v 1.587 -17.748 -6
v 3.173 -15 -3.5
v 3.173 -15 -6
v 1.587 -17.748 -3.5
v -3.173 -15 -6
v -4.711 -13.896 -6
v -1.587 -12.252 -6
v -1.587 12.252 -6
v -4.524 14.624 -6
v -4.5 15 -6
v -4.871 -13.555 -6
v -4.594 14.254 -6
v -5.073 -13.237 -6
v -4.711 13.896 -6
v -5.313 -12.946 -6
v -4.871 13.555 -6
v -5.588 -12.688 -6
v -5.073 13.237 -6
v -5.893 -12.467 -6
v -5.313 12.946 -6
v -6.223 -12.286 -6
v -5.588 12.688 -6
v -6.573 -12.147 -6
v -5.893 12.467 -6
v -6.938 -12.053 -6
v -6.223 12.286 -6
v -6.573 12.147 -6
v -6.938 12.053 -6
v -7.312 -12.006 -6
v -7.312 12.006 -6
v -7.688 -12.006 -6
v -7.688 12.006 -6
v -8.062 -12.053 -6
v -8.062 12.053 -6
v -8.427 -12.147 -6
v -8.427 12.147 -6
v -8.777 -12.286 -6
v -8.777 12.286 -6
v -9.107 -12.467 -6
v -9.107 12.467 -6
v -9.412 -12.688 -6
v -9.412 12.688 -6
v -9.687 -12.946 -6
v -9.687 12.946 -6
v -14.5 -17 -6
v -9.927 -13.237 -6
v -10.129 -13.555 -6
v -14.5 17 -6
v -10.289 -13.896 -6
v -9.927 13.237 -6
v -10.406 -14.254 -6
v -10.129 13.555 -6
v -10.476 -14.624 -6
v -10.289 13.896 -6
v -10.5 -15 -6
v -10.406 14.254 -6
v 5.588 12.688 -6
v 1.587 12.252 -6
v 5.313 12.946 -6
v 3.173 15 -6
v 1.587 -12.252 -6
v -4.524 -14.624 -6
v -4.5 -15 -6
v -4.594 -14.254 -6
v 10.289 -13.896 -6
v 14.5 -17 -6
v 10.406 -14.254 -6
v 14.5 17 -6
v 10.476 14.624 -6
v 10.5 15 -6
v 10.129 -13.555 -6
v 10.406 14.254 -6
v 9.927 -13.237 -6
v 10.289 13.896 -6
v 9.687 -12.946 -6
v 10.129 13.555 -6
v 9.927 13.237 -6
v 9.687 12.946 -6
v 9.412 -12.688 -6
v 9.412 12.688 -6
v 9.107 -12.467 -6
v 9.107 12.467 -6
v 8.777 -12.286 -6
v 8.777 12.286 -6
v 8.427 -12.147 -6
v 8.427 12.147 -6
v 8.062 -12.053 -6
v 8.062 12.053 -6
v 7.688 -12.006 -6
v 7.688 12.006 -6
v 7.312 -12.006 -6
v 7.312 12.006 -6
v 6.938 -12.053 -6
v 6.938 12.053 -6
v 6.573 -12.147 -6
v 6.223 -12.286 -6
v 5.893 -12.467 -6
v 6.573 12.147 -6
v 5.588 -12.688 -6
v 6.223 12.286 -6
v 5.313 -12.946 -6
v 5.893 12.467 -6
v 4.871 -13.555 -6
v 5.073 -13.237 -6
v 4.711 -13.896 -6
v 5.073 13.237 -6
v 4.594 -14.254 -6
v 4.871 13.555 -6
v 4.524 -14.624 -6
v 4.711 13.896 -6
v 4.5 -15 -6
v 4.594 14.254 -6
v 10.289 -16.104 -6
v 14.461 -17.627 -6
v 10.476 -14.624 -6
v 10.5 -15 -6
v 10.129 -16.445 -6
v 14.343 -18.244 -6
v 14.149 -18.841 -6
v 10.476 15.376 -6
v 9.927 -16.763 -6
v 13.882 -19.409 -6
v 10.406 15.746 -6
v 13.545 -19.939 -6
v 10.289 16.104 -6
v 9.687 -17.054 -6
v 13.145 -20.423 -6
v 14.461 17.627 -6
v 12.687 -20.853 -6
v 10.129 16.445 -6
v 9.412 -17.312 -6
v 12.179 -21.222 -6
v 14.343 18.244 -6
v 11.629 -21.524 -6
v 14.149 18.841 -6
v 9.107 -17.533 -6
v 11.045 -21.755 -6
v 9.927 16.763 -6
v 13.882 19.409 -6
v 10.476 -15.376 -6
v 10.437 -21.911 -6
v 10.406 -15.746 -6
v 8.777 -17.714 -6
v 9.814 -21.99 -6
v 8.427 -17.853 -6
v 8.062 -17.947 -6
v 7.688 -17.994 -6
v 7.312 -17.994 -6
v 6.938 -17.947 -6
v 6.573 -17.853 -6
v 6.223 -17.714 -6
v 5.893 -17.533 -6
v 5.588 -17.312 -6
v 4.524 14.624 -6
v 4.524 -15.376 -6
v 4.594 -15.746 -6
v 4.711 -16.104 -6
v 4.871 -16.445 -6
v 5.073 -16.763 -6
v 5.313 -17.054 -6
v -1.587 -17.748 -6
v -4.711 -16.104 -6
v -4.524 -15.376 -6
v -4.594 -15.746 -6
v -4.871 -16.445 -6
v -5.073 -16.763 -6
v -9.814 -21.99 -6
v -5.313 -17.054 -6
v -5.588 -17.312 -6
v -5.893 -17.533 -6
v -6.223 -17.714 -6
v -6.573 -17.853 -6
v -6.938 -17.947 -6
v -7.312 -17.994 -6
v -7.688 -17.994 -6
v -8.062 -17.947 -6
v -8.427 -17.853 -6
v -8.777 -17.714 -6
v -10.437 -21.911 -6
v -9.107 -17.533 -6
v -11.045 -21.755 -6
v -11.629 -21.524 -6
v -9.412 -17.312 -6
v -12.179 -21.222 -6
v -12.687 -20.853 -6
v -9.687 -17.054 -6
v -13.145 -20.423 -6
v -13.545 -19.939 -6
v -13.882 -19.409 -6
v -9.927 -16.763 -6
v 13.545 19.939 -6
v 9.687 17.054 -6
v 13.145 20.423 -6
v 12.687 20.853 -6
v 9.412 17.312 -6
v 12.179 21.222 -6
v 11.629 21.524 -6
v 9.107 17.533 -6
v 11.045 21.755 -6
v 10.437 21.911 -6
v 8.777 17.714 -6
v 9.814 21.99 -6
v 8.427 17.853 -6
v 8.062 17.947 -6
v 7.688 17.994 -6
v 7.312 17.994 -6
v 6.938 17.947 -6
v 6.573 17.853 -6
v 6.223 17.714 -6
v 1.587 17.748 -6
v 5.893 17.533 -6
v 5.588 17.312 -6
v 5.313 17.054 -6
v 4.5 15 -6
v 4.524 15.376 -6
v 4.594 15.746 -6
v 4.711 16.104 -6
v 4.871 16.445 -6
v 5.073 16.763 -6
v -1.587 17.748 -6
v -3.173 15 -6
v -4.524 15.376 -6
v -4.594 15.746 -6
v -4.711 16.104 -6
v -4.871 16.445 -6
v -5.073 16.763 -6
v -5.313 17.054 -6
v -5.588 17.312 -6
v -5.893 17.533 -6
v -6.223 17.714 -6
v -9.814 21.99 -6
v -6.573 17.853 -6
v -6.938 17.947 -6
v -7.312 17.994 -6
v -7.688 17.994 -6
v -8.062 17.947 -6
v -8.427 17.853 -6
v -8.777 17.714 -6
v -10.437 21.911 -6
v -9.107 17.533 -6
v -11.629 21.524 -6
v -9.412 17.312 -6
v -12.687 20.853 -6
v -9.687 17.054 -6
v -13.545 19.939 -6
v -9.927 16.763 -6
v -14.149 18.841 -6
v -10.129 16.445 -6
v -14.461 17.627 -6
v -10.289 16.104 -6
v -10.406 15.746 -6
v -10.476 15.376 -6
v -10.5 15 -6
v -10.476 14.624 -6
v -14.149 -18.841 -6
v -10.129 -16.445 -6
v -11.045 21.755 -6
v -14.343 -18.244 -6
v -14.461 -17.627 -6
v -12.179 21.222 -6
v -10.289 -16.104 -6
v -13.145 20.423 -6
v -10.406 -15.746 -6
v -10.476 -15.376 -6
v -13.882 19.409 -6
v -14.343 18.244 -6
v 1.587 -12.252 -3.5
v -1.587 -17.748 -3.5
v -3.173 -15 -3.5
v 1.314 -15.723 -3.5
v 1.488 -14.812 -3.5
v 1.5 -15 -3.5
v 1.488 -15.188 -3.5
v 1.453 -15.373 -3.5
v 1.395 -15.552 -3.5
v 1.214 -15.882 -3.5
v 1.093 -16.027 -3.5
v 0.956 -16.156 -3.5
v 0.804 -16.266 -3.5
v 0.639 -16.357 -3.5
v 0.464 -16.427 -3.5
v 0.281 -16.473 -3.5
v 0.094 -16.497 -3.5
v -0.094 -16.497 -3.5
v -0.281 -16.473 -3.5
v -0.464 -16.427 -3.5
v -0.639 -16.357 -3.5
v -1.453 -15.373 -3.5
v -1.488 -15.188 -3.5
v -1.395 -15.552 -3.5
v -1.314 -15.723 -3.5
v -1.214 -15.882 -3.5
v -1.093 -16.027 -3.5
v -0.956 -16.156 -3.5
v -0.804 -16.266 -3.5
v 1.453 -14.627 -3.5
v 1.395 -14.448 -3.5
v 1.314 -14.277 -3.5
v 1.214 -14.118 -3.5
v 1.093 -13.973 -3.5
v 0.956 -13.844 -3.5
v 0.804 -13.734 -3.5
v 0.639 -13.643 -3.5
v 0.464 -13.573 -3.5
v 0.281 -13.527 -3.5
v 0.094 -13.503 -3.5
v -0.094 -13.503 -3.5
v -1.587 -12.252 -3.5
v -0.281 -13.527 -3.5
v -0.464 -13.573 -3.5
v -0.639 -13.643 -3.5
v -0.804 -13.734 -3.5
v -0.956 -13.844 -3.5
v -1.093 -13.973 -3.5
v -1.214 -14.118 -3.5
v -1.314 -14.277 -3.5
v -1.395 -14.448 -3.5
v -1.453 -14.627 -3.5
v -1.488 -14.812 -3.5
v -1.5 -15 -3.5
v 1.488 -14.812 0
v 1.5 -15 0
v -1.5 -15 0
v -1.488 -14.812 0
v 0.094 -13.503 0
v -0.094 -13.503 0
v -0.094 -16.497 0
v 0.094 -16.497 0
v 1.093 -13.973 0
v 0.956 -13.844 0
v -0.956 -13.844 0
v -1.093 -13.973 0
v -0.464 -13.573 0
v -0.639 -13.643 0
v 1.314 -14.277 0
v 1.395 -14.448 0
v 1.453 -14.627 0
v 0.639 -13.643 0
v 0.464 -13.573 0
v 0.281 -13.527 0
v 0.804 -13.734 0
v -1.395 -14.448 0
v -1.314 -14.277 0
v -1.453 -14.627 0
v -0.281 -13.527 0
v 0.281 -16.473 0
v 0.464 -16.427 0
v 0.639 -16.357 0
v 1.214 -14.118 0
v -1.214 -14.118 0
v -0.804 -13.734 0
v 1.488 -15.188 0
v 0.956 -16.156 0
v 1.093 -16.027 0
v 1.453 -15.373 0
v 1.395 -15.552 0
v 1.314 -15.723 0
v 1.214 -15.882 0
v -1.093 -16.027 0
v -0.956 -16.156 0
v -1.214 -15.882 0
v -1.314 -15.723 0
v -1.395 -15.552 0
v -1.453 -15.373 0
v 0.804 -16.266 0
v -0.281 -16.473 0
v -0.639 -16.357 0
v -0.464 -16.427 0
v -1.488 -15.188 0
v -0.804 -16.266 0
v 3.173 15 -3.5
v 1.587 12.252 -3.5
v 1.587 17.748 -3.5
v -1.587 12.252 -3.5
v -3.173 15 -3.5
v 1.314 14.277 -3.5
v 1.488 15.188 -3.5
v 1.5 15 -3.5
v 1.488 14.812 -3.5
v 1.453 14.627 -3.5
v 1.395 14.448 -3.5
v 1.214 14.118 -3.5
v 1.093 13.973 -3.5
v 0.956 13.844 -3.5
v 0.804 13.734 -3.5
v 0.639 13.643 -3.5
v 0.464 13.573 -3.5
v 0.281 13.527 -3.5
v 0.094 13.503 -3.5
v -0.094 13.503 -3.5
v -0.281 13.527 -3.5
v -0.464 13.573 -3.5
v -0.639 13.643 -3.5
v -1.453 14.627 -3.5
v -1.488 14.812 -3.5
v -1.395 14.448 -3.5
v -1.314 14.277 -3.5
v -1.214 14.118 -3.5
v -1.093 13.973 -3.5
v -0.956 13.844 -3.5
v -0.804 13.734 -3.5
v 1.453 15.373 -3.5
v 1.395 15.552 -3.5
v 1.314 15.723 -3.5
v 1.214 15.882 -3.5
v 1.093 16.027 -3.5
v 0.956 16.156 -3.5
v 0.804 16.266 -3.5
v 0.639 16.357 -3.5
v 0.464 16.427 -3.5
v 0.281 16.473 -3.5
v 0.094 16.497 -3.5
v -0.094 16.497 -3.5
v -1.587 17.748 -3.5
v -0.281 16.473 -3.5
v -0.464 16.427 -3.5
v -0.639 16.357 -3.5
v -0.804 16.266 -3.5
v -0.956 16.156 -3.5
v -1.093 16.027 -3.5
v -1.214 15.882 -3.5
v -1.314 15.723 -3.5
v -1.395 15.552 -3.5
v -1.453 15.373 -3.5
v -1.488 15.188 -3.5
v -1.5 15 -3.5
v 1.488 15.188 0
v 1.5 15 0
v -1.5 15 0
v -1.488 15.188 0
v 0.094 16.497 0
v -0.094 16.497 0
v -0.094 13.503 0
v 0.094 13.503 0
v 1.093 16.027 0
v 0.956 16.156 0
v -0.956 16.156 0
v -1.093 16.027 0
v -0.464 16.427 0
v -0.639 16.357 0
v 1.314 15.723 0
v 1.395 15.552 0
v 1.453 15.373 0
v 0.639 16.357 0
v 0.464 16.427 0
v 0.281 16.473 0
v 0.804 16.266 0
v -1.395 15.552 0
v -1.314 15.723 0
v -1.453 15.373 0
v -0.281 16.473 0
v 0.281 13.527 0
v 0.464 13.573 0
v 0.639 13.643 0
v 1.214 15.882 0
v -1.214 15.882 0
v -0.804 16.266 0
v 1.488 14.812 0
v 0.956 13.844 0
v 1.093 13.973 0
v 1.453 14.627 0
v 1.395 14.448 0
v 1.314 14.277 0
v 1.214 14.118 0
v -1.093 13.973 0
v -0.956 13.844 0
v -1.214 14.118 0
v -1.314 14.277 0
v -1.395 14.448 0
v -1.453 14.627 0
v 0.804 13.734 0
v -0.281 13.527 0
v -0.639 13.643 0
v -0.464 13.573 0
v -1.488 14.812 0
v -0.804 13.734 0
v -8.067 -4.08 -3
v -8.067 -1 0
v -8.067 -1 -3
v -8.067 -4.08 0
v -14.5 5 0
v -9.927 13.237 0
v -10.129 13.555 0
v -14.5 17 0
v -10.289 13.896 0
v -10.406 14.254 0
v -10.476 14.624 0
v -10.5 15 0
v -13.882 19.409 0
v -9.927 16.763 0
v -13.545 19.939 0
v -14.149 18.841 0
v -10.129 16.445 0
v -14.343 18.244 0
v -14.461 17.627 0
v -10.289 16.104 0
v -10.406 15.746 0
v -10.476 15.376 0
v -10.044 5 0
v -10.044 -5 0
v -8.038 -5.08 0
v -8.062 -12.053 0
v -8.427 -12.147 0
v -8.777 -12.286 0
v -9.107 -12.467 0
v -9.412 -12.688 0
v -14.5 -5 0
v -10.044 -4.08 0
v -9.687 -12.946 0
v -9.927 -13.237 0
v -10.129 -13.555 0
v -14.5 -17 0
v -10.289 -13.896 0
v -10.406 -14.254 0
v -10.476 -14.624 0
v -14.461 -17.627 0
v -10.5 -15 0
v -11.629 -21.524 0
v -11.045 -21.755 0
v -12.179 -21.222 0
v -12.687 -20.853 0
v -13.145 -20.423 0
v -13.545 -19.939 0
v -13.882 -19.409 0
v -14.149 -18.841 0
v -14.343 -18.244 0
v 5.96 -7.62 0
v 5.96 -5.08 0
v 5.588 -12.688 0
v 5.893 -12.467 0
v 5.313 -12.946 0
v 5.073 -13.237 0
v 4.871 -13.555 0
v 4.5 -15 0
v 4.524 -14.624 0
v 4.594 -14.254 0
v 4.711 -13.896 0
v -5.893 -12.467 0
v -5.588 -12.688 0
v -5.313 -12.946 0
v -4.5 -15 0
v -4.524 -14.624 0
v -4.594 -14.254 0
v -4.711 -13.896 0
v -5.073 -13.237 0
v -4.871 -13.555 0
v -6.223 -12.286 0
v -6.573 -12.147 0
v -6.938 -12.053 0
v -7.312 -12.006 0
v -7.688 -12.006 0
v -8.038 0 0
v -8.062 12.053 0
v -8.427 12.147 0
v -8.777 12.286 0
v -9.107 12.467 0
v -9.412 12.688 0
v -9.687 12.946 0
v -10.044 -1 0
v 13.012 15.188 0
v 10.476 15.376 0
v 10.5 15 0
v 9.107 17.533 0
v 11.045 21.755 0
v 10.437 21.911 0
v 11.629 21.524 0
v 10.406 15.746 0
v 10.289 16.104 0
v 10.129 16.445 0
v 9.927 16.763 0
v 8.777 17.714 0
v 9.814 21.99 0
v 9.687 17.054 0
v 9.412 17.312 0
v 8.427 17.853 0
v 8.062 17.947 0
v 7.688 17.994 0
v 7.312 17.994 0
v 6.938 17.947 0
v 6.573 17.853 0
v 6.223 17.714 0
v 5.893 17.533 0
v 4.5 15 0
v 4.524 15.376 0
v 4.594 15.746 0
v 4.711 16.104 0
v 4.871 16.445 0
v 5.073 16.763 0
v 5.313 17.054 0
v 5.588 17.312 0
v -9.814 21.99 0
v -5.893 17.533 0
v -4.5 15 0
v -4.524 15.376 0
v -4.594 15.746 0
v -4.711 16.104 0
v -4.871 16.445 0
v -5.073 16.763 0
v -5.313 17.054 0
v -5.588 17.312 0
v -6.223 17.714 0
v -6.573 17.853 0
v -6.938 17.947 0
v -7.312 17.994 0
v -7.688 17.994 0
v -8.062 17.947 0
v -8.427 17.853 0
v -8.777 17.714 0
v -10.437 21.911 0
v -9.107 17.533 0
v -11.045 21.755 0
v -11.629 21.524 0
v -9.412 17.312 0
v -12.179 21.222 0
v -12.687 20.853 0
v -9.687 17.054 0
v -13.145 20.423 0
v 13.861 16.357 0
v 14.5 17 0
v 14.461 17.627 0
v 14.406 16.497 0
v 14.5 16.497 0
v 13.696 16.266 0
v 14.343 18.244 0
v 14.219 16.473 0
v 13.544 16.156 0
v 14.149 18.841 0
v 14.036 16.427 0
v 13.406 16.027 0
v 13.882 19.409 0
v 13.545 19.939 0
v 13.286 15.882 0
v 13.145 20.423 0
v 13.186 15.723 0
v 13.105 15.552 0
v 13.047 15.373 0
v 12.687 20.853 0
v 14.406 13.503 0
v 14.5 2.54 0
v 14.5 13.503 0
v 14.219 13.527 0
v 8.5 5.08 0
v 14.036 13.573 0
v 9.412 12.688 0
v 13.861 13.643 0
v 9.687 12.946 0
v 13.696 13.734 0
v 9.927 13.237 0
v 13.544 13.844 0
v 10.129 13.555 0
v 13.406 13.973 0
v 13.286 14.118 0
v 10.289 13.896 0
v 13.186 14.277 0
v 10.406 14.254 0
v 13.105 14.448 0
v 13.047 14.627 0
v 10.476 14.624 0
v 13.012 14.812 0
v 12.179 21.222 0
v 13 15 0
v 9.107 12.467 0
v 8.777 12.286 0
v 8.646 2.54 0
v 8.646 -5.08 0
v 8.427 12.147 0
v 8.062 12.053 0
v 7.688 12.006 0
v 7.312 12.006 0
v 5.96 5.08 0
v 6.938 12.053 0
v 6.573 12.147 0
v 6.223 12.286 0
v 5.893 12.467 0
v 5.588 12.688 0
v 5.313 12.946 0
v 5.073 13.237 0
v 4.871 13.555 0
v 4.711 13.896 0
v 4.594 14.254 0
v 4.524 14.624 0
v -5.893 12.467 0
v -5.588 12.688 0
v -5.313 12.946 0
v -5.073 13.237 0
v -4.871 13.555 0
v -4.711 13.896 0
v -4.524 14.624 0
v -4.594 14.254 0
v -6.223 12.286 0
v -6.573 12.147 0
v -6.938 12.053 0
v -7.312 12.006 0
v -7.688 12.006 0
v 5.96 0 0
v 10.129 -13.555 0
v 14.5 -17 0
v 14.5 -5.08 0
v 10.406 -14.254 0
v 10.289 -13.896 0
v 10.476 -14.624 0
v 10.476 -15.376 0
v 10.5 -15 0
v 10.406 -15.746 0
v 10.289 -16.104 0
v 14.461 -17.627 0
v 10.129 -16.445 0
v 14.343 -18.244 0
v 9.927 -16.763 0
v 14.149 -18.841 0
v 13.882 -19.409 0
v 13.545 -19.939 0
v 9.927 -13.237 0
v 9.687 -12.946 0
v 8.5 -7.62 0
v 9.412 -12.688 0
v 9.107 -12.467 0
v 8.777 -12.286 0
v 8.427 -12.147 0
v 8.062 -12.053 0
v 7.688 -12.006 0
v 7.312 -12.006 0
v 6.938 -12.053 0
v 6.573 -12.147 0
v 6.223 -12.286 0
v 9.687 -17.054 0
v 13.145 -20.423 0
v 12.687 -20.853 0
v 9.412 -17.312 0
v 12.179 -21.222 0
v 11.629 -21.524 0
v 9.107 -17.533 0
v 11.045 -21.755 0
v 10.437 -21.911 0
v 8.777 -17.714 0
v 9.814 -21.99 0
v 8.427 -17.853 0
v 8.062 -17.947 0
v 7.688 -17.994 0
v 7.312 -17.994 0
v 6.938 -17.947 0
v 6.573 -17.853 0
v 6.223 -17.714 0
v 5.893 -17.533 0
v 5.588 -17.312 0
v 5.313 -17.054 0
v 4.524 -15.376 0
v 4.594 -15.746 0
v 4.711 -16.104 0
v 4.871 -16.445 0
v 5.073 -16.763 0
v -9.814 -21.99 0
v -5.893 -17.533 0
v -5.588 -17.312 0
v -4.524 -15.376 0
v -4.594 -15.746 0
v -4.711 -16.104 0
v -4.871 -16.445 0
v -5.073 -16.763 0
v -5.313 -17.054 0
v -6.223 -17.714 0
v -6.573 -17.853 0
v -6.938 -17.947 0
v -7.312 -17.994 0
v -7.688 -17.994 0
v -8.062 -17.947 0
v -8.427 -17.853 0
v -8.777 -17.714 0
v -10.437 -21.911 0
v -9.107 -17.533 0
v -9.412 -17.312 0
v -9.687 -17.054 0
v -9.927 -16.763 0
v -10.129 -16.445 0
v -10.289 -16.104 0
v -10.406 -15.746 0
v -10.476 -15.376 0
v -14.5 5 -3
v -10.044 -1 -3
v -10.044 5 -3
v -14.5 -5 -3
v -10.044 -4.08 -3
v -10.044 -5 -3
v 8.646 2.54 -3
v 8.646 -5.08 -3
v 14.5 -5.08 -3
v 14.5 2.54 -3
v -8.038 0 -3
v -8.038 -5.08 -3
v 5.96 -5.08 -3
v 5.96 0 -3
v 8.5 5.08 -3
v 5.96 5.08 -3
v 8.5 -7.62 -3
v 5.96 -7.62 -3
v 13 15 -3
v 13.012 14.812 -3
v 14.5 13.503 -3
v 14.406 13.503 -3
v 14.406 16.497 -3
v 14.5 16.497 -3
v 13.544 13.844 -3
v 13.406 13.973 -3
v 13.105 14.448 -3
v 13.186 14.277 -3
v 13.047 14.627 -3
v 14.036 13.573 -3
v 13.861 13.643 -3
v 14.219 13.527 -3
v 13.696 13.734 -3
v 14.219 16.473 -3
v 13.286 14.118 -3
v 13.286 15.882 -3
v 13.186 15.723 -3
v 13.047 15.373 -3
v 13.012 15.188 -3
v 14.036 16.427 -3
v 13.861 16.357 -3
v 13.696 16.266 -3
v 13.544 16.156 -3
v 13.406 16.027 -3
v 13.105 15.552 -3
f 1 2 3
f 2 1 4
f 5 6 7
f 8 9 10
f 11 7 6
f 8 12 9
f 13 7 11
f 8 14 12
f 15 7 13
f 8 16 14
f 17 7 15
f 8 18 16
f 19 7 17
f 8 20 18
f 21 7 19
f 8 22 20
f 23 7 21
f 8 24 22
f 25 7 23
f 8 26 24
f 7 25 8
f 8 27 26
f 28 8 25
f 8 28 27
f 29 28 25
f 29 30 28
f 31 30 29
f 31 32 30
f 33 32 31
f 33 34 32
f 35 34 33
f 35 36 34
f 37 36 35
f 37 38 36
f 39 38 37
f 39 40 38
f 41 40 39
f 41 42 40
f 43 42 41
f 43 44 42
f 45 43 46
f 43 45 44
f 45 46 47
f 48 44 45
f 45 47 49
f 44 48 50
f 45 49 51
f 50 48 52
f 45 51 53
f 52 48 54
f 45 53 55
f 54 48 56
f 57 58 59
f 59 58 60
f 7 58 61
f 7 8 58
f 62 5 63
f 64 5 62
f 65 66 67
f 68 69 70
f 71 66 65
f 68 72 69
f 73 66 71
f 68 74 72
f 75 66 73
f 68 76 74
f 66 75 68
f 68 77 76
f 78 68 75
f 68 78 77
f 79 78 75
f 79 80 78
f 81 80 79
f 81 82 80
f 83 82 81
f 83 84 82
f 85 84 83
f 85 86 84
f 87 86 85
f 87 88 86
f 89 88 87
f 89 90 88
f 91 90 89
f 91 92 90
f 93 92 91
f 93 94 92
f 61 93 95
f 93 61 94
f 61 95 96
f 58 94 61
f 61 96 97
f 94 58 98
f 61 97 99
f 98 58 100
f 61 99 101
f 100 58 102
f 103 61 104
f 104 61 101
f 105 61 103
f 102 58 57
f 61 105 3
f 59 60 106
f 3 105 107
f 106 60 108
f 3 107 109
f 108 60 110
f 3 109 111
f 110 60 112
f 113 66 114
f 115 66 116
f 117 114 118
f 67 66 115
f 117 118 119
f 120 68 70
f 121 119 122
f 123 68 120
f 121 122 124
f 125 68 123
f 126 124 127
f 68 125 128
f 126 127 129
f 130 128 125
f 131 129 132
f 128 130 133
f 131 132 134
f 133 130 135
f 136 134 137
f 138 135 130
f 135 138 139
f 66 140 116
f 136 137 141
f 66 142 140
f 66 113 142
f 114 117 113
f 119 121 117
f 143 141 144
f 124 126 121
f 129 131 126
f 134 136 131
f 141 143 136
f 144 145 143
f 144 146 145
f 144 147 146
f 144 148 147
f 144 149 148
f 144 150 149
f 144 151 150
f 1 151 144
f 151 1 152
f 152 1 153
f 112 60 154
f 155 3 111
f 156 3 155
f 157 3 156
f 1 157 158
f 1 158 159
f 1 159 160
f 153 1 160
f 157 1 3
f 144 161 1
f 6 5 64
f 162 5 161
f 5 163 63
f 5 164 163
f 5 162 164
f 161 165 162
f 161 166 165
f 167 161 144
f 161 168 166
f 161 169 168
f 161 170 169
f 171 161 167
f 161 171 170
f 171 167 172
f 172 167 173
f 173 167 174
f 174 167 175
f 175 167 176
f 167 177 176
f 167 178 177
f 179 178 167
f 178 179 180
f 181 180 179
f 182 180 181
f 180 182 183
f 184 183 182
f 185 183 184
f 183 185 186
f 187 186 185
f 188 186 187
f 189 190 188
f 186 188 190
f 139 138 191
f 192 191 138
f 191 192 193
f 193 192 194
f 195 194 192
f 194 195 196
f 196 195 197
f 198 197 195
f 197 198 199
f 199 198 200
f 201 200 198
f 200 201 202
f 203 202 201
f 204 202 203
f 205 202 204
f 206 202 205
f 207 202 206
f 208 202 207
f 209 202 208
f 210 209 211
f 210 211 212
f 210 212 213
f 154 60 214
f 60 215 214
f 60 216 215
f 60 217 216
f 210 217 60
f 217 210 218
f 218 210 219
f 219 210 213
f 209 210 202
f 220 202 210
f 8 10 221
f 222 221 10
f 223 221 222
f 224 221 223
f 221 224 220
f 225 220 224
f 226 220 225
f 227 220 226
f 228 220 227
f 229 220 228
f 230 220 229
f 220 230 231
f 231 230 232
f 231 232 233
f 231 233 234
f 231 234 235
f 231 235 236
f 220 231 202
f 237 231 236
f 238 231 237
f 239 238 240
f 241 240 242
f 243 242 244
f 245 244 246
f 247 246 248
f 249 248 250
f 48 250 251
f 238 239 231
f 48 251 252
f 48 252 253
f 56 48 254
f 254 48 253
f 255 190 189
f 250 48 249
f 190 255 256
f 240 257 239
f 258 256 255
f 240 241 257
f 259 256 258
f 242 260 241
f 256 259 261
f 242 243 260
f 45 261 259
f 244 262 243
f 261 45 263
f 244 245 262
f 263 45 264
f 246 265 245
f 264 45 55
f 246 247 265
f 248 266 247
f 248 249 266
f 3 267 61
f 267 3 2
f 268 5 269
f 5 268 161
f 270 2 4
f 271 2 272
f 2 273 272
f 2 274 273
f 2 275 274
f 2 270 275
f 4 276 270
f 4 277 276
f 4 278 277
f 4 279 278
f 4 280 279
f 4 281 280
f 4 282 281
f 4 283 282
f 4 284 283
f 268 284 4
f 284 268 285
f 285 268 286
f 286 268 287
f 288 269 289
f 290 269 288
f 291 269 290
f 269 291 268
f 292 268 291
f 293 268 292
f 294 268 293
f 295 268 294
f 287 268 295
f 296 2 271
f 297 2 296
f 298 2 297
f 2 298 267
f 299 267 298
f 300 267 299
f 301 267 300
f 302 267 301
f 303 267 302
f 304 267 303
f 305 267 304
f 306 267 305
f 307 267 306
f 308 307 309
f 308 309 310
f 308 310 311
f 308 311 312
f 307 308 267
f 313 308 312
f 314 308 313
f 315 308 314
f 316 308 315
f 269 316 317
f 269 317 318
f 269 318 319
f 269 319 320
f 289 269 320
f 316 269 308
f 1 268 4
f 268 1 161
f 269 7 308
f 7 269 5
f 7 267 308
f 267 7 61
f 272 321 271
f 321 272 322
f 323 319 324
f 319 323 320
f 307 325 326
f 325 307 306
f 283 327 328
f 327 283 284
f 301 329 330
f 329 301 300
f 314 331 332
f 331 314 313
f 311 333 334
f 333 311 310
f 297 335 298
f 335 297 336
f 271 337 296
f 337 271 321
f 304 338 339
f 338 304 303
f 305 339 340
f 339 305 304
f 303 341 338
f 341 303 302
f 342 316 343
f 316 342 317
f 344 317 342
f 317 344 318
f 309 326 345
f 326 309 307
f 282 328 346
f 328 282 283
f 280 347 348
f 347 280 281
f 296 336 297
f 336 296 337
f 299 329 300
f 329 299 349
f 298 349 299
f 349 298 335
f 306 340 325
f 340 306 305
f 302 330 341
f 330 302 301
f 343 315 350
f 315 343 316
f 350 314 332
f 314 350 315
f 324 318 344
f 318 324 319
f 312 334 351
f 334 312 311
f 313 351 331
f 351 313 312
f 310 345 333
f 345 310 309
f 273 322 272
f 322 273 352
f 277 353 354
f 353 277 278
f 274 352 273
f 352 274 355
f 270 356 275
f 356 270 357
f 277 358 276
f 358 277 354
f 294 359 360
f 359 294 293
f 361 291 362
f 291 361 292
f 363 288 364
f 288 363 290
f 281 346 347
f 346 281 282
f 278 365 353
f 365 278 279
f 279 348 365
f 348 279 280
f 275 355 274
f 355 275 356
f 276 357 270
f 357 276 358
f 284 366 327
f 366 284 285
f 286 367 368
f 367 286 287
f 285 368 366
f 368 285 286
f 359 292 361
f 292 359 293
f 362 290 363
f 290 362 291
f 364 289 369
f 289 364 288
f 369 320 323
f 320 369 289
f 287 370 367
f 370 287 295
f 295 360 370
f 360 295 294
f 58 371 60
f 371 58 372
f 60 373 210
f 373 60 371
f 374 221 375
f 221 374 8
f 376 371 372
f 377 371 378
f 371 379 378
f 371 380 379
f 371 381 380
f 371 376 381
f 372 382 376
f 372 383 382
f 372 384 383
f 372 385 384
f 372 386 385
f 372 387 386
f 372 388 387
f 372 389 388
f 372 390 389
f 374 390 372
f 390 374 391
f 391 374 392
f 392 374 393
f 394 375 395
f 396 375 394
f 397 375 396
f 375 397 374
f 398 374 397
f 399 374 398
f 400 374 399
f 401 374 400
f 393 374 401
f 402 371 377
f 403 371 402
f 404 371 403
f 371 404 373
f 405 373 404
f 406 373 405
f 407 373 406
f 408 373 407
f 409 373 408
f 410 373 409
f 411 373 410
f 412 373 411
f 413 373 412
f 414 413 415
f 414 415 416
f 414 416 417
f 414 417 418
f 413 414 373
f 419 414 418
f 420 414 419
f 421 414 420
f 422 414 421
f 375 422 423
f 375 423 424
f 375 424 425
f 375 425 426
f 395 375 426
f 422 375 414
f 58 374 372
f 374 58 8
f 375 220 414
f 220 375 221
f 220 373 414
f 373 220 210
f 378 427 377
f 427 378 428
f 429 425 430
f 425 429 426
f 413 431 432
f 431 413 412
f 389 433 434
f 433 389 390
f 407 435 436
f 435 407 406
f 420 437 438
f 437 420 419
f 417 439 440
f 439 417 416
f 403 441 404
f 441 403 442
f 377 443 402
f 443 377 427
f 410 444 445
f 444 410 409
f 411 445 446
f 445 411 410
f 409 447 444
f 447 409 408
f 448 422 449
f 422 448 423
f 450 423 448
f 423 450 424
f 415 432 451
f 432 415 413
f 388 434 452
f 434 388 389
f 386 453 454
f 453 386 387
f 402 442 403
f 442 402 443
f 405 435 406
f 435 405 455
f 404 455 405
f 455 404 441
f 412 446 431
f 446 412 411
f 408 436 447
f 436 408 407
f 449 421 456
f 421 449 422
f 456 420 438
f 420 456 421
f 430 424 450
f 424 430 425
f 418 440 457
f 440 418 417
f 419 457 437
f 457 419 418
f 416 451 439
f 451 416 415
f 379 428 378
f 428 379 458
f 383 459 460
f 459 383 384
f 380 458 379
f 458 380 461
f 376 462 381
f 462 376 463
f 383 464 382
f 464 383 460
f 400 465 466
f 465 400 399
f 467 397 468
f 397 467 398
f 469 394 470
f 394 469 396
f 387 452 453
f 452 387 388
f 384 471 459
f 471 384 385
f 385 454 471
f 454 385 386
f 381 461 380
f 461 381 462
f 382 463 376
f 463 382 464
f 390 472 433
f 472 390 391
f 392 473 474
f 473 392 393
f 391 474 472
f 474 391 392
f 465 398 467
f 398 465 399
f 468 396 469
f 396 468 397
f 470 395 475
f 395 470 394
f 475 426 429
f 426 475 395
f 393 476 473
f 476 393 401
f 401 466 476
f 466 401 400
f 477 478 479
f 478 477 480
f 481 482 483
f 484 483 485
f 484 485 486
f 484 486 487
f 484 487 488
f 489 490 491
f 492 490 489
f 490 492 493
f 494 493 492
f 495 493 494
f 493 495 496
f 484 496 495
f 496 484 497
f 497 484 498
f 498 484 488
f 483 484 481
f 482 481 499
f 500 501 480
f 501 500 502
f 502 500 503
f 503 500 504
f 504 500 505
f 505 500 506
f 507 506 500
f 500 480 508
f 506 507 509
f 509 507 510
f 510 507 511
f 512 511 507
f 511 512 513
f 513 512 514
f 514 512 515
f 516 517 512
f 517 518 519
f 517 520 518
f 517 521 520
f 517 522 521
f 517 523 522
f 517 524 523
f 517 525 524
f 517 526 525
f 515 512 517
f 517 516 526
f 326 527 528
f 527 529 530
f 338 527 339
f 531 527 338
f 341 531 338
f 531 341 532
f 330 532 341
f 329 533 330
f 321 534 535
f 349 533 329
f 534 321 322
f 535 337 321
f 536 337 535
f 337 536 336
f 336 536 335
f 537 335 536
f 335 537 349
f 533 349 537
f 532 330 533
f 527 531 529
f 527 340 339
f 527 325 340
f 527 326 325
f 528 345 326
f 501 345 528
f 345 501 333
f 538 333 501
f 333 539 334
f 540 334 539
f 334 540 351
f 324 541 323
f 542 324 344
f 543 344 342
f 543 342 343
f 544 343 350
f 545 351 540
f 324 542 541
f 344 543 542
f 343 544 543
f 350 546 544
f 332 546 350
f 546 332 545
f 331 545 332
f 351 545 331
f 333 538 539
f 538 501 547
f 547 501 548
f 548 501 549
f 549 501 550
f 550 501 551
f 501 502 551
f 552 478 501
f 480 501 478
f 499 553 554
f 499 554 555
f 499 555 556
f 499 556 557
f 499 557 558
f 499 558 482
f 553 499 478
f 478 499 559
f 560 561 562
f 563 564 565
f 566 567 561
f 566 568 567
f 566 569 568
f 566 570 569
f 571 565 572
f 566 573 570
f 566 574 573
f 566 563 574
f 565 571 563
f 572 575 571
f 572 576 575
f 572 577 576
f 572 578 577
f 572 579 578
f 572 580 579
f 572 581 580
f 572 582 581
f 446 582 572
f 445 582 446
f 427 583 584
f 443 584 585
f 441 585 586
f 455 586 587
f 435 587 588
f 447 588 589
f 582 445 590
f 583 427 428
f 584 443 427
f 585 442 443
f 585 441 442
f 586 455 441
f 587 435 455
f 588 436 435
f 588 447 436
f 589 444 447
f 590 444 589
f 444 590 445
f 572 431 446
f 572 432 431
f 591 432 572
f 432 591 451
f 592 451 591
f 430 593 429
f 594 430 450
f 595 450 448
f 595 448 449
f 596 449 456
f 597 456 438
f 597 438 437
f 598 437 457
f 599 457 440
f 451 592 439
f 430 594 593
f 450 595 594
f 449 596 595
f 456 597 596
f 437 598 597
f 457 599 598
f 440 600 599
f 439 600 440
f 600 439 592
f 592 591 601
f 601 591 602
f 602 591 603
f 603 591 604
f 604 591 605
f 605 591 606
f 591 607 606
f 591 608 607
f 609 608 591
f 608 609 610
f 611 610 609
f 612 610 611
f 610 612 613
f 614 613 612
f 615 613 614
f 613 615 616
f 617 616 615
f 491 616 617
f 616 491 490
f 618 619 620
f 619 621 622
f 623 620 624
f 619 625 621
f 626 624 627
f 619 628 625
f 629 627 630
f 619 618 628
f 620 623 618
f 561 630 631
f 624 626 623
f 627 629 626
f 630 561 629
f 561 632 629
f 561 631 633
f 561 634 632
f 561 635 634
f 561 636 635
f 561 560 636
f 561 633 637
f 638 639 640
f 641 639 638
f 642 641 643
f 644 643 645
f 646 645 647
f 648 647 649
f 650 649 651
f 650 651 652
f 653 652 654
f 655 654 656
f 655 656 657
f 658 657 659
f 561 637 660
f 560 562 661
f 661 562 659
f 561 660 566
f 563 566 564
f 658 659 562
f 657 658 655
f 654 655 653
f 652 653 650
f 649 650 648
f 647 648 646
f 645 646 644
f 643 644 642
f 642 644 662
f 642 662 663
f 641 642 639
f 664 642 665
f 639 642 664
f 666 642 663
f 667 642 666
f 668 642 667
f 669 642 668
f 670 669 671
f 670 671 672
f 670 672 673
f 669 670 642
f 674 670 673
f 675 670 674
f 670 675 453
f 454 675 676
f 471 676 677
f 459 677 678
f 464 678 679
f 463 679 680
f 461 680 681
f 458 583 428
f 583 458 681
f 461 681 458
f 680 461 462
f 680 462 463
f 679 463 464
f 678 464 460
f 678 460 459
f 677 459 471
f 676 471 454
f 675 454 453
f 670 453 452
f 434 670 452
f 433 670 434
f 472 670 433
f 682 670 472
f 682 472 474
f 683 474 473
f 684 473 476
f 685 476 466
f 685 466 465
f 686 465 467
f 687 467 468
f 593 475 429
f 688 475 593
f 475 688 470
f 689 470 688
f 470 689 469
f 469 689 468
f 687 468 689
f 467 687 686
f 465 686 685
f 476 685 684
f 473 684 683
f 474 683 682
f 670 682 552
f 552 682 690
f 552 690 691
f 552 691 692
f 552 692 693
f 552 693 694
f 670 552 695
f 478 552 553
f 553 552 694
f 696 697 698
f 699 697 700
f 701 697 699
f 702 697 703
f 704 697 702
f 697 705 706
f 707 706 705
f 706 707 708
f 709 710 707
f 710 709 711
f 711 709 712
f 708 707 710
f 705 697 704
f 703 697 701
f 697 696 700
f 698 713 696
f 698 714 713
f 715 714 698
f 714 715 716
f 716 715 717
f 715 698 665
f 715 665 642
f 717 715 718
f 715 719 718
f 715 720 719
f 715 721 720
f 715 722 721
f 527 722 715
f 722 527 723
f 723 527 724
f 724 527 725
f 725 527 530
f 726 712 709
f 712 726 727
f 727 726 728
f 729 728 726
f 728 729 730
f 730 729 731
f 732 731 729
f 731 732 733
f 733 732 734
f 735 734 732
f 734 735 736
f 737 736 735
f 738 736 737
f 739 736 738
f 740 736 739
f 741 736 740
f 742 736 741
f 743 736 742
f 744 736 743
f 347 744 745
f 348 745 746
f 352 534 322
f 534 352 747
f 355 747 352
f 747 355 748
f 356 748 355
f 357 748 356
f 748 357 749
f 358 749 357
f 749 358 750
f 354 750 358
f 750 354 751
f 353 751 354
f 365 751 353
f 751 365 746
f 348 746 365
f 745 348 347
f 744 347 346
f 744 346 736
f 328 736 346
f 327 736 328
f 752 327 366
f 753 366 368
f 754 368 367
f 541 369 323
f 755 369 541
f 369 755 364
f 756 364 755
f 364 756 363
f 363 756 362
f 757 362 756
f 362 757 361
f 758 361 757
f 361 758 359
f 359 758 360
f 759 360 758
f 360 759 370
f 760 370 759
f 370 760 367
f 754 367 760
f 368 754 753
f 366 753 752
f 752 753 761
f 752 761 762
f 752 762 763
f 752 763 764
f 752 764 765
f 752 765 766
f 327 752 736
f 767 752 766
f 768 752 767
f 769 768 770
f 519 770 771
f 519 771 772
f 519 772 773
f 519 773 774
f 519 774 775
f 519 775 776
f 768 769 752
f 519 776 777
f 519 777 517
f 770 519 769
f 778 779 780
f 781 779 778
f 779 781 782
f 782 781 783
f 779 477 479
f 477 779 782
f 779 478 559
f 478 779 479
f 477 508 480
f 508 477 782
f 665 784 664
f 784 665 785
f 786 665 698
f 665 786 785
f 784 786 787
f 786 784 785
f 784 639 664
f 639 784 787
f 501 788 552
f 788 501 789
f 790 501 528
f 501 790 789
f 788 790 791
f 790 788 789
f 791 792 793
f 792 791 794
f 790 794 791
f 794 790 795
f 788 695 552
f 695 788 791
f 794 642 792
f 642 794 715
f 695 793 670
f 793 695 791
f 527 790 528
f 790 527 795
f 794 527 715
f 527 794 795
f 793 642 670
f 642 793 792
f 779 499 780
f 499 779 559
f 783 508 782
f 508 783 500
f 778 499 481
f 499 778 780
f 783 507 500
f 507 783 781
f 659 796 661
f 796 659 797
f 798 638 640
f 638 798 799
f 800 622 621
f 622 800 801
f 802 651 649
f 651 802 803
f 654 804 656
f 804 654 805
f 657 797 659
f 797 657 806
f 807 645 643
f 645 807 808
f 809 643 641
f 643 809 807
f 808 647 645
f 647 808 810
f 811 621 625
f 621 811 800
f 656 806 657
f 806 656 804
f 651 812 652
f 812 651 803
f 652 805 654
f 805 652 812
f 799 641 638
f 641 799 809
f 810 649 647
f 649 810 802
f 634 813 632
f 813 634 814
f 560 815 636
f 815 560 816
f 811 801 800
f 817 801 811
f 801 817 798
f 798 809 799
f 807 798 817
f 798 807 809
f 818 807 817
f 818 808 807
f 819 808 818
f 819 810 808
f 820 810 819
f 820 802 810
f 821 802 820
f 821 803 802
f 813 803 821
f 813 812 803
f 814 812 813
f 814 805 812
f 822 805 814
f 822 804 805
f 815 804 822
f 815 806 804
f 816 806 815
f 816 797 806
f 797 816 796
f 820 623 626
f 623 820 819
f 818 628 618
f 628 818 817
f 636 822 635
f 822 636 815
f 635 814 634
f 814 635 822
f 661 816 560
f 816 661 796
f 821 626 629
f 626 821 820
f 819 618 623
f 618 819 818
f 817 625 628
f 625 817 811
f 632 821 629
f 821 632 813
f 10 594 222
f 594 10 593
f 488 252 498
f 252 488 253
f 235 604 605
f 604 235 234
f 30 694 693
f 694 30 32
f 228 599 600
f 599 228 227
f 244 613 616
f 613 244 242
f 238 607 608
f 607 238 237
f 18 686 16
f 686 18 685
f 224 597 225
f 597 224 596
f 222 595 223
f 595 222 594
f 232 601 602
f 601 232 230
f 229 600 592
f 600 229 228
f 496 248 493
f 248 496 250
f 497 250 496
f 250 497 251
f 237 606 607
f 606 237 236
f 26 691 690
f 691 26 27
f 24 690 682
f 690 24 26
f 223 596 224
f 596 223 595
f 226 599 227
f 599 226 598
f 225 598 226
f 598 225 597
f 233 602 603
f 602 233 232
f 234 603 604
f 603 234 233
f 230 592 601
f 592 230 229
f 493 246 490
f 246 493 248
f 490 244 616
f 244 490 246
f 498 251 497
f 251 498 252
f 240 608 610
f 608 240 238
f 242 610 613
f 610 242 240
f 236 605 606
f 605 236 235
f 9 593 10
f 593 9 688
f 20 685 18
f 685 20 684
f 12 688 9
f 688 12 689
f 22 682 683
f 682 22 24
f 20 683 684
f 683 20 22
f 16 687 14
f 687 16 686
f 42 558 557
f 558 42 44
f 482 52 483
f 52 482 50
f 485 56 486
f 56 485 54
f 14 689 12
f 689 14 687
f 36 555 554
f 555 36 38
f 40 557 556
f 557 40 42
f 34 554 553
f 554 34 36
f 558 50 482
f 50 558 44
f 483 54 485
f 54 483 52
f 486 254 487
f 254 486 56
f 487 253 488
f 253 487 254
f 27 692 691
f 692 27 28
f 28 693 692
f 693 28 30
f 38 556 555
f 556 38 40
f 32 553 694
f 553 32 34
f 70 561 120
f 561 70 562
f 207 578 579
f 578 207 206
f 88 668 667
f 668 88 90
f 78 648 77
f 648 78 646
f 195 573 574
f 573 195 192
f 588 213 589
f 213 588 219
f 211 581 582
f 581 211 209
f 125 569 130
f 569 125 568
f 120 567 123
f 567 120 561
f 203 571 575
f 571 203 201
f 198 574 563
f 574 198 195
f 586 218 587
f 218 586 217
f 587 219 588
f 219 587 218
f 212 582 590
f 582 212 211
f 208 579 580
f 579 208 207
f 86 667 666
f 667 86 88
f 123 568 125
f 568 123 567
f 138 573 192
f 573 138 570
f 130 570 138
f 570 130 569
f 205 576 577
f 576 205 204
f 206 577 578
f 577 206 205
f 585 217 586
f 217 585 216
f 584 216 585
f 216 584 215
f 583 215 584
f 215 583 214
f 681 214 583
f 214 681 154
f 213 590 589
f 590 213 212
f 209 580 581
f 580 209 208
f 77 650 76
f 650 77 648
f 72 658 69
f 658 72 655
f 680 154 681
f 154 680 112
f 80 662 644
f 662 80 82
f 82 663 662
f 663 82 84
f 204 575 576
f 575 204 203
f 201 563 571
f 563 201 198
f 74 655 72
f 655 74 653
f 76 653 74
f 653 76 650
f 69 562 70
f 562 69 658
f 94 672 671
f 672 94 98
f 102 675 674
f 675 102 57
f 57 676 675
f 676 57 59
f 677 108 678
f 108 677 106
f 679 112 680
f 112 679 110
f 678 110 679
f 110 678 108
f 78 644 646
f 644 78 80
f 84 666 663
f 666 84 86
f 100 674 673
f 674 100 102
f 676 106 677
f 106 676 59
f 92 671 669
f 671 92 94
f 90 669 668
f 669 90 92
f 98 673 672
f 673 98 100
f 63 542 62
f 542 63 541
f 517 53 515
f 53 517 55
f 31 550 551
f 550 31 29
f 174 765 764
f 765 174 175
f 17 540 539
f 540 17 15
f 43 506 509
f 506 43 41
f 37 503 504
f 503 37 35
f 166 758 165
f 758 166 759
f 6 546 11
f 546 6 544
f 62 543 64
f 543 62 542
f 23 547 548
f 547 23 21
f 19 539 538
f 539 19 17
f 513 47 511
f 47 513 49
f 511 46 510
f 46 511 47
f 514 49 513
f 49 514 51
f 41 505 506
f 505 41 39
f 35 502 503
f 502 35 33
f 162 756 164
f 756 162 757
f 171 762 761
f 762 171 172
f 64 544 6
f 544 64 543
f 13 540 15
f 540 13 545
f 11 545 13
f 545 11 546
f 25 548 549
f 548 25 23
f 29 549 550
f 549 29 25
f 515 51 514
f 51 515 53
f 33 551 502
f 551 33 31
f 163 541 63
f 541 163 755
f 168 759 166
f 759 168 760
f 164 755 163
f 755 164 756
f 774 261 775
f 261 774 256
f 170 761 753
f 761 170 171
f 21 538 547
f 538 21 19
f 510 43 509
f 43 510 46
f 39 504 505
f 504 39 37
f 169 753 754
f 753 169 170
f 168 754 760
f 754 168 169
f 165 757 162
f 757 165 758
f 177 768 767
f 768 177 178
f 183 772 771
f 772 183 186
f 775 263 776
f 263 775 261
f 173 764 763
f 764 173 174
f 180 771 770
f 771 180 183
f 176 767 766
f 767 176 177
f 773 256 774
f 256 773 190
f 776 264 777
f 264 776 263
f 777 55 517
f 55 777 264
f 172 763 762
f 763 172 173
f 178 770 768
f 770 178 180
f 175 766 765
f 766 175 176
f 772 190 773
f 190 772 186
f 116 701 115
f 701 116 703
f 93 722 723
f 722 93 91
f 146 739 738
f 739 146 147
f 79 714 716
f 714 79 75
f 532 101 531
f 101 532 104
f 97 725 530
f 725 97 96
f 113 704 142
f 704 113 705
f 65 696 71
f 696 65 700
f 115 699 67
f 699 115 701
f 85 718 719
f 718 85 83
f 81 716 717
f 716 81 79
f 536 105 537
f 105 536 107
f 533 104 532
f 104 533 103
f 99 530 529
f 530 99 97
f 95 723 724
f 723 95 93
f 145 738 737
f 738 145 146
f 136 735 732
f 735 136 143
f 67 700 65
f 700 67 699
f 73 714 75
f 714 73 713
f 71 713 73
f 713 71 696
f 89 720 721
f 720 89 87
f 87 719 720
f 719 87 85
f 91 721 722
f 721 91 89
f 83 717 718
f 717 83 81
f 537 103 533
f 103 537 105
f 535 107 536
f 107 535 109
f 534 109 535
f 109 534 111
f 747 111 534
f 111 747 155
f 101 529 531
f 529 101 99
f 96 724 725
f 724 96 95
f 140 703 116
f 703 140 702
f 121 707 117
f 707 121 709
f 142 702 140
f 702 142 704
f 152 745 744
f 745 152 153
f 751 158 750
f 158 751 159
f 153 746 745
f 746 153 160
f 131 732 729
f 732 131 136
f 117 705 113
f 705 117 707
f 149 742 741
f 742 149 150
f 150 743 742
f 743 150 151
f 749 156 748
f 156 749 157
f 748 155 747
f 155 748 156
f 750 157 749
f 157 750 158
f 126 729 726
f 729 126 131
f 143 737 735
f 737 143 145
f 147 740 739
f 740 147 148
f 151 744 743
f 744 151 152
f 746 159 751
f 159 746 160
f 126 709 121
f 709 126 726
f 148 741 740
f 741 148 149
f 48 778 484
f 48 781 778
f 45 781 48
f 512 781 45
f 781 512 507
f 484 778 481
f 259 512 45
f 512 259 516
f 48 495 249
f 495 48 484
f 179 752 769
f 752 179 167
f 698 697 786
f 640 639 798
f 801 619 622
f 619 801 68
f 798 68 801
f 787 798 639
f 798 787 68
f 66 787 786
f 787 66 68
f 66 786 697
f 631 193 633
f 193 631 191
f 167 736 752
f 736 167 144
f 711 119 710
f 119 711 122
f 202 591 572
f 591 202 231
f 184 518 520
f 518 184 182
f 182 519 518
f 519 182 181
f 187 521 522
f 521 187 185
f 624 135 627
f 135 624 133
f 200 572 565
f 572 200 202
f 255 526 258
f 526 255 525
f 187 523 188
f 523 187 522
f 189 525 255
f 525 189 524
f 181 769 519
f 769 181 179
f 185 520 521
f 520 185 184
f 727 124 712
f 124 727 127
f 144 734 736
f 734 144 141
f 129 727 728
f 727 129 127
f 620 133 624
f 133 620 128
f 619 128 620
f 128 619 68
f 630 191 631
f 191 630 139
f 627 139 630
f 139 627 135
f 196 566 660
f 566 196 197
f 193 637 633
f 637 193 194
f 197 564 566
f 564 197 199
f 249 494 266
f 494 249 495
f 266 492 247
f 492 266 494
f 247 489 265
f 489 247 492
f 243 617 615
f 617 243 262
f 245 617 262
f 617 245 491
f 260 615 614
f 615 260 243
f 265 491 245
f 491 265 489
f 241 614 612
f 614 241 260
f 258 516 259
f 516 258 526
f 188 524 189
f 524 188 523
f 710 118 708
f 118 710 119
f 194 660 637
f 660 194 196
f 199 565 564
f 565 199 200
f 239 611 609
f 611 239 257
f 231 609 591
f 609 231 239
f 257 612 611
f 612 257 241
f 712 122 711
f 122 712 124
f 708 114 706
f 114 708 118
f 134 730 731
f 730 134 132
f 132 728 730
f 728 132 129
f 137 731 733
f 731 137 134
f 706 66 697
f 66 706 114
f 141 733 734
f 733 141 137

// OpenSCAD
$fn = 50;


difference() {
	union() {
		translate(v = [0, 0, -6]) {
			hull() {
				translate(v = [-9.5000000000, 17.0000000000, 0]) {
					cylinder(h = 6, r = 5);
				}
				translate(v = [9.5000000000, 17.0000000000, 0]) {
					cylinder(h = 6, r = 5);
				}
				translate(v = [-9.5000000000, -17.0000000000, 0]) {
					cylinder(h = 6, r = 5);
				}
				translate(v = [9.5000000000, -17.0000000000, 0]) {
					cylinder(h = 6, r = 5);
				}
			}
		}
	}
	union() {
		translate(v = [0, -15, -6]) {
			rotate(a = [0, 0, 0]) {
				difference() {
					union() {
						linear_extrude(height = 2.5000000000) {
							polygon(points = [[3.1735000000, 0.0000000000], [1.5867500000, 2.7483316189], [-1.5867500000, 2.7483316189], [-3.1735000000, 0.0000000000], [-1.5867500000, -2.7483316189], [1.5867500000, -2.7483316189]]);
						}
						translate(v = [0, 0, -50.0000000000]) {
							cylinder(h = 100, r = 1.5000000000);
						}
						translate(v = [0, 0, -50.0000000000]) {
							cylinder(h = 100, r = 1.5000000000);
						}
						translate(v = [0, 0, -50.0000000000]) {
							cylinder(h = 100, r = 1.5000000000);
						}
					}
					union();
				}
			}
		}
		translate(v = [0, 15, -6]) {
			rotate(a = [0, 0, 0]) {
				difference() {
					union() {
						linear_extrude(height = 2.5000000000) {
							polygon(points = [[3.1735000000, 0.0000000000], [1.5867500000, 2.7483316189], [-1.5867500000, 2.7483316189], [-3.1735000000, 0.0000000000], [-1.5867500000, -2.7483316189], [1.5867500000, -2.7483316189]]);
						}
						translate(v = [0, 0, -50.0000000000]) {
							cylinder(h = 100, r = 1.5000000000);
						}
						translate(v = [0, 0, -50.0000000000]) {
							cylinder(h = 100, r = 1.5000000000);
						}
						translate(v = [0, 0, -50.0000000000]) {
							cylinder(h = 100, r = 1.5000000000);
						}
					}
					union();
				}
			}
		}
		translate(v = [15.0000000000, 0, -3]) {
			rotate(a = [0, 0, 180]) {
				difference() {
					union() {
						#translate(v = [23.0670000000, 1.0000000000, 0]) {
							cube(size = [5, 3.0800000000, 3]);
						}
						#translate(v = [0.3540000000, -2.5400000000, 0]) {
							cube(size = [6, 7.6200000000, 3]);
						}
						#translate(v = [9.0380000000, 0.0000000000, 0]) {
							cube(size = [14, 5.0800000000, 3]);
						}
						#translate(v = [6.5000000000, -5.0800000000, 0]) {
							cube(size = [2.5400000000, 12.7000000000, 3]);
						}
						#translate(v = [25.0440000000, -5.0000000000, 0]) {
							cube(size = [7, 10, 3]);
						}
						#translate(v = [0.5000000000, -15, 0.0000000000]) {
							cylinder(h = 3, r = 1.5000000000);
						}
					}
					union();
				}
			}
		}
		translate(v = [-7.5000000000, 15.0000000000, -50.0000000000]) {
			cylinder(h = 100, r = 3.0000000000);
		}
		translate(v = [7.5000000000, 15.0000000000, -50.0000000000]) {
			cylinder(h = 100, r = 3.0000000000);
		}
		translate(v = [-7.5000000000, -15.0000000000, -50.0000000000]) {
			cylinder(h = 100, r = 3.0000000000);
		}
		translate(v = [7.5000000000, -15.0000000000, -50.0000000000]) {
			cylinder(h = 100, r = 3.0000000000);
		}
	}
}
